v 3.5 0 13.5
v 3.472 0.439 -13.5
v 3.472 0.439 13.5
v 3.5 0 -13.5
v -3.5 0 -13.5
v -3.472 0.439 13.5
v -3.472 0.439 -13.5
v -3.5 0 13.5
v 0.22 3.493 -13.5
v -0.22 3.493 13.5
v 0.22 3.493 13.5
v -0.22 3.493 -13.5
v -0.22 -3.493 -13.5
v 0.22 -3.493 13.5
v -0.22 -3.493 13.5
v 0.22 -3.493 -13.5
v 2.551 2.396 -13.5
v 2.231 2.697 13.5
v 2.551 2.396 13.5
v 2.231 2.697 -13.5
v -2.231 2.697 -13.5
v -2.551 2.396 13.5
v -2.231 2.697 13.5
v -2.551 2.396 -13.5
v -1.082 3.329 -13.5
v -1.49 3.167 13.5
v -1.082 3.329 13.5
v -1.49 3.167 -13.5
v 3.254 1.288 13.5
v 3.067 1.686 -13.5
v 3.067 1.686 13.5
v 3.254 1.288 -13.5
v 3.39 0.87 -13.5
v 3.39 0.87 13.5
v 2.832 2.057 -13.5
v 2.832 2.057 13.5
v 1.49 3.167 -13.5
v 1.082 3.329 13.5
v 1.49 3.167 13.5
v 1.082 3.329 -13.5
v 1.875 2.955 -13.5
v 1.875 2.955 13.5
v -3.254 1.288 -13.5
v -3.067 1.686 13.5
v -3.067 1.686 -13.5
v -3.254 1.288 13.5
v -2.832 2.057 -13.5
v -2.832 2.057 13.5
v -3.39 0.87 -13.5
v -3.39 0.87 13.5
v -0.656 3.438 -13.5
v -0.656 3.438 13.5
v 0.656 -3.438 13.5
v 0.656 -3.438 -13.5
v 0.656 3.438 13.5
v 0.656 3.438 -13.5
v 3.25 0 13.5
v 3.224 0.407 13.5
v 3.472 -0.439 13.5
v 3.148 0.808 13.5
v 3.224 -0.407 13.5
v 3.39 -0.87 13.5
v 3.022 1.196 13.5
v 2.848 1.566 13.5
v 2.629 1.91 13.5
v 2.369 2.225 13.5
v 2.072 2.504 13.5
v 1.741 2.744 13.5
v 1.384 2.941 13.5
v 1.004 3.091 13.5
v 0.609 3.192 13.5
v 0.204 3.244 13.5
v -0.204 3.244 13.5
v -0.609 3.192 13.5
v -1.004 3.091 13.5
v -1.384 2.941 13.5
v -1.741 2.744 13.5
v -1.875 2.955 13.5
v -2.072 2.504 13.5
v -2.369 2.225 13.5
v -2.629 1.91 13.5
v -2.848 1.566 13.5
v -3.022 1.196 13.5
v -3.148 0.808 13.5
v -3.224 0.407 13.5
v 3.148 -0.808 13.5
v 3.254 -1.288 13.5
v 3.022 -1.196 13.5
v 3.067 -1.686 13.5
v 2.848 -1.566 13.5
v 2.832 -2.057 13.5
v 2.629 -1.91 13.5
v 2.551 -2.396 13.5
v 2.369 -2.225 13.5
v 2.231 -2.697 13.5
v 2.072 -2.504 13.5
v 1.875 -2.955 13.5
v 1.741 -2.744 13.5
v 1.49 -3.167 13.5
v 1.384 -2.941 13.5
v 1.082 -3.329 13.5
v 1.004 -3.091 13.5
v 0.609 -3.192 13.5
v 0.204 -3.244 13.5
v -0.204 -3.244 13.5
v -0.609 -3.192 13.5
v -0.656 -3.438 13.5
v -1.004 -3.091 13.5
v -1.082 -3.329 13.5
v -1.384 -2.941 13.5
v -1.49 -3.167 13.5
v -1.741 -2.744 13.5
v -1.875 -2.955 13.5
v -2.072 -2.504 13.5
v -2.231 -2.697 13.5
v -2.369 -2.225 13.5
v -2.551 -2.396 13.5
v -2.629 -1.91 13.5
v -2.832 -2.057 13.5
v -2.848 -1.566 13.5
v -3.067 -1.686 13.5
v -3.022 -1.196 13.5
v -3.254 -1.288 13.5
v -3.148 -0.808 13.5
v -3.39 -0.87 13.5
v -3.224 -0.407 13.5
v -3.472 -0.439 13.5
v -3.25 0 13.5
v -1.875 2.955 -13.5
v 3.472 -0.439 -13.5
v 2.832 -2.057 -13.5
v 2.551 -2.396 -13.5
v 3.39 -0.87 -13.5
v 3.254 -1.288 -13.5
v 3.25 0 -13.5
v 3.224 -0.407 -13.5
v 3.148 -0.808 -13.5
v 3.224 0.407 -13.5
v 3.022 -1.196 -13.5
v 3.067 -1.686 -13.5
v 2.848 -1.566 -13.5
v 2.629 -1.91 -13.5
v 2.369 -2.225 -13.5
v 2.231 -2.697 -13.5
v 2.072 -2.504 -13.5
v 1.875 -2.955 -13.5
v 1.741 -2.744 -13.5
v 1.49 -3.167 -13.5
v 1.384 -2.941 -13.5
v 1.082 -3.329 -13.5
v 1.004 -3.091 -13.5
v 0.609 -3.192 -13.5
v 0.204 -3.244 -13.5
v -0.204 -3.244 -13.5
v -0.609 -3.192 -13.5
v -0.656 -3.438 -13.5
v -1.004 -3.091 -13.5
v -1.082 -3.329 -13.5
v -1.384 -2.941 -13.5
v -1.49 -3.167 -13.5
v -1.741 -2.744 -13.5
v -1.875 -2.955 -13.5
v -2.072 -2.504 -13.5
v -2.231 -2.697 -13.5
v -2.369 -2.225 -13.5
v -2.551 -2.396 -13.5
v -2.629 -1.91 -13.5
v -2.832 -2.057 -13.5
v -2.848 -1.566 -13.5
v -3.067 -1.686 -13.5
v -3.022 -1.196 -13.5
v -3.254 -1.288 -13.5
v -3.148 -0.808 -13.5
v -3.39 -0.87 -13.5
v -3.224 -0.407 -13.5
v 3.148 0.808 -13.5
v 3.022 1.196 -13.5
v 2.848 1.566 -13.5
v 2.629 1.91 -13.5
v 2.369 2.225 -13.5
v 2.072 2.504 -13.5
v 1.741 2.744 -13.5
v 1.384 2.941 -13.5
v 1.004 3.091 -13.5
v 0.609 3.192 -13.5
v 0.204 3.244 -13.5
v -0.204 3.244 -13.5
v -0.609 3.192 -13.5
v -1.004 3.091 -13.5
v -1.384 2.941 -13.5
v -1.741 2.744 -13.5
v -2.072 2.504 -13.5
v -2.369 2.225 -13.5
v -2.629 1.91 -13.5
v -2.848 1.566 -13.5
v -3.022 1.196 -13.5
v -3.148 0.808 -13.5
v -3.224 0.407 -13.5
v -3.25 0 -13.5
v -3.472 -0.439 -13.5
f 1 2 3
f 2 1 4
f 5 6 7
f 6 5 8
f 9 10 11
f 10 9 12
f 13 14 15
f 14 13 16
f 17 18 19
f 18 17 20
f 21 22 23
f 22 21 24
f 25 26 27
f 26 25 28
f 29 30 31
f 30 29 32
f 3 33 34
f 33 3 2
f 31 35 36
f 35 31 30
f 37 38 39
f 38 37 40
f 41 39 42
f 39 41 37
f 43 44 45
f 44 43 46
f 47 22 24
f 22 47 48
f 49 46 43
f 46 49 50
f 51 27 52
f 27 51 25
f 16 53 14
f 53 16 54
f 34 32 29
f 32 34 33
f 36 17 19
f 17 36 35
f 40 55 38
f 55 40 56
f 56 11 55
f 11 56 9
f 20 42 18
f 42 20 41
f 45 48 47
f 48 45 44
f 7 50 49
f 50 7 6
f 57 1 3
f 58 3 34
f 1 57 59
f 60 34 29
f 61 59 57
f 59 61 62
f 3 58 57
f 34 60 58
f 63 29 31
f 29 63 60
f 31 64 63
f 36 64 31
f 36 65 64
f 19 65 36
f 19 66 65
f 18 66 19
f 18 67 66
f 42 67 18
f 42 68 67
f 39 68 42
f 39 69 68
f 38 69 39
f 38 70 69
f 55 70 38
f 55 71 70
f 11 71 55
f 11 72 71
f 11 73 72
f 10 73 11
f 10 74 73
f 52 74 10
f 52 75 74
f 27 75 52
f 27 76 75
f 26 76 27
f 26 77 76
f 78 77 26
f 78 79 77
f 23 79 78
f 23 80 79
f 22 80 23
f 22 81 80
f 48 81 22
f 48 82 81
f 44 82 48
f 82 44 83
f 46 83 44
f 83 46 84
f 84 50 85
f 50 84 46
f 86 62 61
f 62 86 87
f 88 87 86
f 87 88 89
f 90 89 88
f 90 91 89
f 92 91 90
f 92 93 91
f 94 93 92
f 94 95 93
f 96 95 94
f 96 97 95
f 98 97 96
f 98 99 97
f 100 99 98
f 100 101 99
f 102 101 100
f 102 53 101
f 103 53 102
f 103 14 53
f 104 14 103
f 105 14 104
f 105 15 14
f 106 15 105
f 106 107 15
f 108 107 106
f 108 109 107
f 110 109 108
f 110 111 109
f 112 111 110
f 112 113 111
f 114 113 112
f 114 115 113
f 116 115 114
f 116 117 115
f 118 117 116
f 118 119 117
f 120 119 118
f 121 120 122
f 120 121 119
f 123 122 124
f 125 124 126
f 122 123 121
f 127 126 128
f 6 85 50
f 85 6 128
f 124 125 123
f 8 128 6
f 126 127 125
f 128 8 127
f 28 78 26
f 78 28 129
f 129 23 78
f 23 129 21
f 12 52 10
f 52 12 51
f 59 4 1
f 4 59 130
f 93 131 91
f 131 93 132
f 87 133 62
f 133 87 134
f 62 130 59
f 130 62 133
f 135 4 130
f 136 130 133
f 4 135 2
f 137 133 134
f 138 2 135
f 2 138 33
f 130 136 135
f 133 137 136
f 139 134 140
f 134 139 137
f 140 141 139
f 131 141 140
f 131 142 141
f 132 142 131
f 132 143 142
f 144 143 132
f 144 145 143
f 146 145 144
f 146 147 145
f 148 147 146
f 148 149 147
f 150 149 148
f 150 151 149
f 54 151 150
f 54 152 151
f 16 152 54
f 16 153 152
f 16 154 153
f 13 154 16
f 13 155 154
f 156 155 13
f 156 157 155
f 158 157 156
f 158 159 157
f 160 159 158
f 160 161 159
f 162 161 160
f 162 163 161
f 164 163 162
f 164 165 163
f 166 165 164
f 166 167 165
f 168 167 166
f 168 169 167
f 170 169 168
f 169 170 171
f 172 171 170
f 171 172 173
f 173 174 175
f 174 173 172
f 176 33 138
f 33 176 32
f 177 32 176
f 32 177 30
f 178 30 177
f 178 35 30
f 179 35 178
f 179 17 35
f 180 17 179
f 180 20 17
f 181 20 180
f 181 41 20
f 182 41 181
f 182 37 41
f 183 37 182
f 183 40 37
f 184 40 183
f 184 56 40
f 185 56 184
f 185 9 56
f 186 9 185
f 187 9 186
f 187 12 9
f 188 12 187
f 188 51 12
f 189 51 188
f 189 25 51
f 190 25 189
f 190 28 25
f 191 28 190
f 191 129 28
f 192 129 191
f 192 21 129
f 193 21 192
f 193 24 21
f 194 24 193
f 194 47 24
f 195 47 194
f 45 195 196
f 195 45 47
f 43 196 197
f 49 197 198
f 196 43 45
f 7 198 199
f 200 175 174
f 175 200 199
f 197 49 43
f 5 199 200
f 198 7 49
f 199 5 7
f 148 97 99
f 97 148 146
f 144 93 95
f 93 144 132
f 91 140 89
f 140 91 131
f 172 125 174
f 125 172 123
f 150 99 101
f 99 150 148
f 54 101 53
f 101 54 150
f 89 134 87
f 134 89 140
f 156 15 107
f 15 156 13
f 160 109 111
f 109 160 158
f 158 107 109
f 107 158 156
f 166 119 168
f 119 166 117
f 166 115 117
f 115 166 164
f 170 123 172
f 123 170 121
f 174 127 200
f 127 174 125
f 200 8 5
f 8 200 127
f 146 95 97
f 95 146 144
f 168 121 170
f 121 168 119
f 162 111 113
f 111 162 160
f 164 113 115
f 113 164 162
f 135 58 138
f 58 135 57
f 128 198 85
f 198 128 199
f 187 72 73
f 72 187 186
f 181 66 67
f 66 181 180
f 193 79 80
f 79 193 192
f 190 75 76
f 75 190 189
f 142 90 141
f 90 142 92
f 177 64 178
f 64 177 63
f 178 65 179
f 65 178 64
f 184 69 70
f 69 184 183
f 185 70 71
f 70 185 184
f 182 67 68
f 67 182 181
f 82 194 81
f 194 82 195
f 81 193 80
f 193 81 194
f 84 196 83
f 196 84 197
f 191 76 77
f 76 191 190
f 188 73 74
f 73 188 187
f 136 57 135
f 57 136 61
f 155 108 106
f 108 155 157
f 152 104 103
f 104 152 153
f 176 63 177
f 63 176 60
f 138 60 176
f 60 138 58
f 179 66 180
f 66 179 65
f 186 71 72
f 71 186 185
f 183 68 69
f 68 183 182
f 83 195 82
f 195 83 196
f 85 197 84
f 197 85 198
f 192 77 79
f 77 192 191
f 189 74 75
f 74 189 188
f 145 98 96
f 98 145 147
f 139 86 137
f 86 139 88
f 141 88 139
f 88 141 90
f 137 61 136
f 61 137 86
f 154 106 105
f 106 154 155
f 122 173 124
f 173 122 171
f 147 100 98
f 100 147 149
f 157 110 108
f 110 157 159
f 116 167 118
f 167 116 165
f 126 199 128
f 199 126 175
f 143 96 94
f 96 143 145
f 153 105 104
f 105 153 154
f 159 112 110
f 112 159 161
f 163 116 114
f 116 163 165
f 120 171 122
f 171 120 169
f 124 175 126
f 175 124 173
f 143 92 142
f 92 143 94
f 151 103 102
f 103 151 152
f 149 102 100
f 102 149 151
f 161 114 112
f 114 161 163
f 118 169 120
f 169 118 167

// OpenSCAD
$fn = 50;


difference() {
	union() {
		translate(v = [0, 0, -13.5000000000]) {
			cylinder(h = 27, r = 3.5000000000);
		}
	}
	union() {
		translate(v = [0, 0, -100.0000000000]) {
			cylinder(h = 200, r = 3.2500000000);
		}
	}
}
